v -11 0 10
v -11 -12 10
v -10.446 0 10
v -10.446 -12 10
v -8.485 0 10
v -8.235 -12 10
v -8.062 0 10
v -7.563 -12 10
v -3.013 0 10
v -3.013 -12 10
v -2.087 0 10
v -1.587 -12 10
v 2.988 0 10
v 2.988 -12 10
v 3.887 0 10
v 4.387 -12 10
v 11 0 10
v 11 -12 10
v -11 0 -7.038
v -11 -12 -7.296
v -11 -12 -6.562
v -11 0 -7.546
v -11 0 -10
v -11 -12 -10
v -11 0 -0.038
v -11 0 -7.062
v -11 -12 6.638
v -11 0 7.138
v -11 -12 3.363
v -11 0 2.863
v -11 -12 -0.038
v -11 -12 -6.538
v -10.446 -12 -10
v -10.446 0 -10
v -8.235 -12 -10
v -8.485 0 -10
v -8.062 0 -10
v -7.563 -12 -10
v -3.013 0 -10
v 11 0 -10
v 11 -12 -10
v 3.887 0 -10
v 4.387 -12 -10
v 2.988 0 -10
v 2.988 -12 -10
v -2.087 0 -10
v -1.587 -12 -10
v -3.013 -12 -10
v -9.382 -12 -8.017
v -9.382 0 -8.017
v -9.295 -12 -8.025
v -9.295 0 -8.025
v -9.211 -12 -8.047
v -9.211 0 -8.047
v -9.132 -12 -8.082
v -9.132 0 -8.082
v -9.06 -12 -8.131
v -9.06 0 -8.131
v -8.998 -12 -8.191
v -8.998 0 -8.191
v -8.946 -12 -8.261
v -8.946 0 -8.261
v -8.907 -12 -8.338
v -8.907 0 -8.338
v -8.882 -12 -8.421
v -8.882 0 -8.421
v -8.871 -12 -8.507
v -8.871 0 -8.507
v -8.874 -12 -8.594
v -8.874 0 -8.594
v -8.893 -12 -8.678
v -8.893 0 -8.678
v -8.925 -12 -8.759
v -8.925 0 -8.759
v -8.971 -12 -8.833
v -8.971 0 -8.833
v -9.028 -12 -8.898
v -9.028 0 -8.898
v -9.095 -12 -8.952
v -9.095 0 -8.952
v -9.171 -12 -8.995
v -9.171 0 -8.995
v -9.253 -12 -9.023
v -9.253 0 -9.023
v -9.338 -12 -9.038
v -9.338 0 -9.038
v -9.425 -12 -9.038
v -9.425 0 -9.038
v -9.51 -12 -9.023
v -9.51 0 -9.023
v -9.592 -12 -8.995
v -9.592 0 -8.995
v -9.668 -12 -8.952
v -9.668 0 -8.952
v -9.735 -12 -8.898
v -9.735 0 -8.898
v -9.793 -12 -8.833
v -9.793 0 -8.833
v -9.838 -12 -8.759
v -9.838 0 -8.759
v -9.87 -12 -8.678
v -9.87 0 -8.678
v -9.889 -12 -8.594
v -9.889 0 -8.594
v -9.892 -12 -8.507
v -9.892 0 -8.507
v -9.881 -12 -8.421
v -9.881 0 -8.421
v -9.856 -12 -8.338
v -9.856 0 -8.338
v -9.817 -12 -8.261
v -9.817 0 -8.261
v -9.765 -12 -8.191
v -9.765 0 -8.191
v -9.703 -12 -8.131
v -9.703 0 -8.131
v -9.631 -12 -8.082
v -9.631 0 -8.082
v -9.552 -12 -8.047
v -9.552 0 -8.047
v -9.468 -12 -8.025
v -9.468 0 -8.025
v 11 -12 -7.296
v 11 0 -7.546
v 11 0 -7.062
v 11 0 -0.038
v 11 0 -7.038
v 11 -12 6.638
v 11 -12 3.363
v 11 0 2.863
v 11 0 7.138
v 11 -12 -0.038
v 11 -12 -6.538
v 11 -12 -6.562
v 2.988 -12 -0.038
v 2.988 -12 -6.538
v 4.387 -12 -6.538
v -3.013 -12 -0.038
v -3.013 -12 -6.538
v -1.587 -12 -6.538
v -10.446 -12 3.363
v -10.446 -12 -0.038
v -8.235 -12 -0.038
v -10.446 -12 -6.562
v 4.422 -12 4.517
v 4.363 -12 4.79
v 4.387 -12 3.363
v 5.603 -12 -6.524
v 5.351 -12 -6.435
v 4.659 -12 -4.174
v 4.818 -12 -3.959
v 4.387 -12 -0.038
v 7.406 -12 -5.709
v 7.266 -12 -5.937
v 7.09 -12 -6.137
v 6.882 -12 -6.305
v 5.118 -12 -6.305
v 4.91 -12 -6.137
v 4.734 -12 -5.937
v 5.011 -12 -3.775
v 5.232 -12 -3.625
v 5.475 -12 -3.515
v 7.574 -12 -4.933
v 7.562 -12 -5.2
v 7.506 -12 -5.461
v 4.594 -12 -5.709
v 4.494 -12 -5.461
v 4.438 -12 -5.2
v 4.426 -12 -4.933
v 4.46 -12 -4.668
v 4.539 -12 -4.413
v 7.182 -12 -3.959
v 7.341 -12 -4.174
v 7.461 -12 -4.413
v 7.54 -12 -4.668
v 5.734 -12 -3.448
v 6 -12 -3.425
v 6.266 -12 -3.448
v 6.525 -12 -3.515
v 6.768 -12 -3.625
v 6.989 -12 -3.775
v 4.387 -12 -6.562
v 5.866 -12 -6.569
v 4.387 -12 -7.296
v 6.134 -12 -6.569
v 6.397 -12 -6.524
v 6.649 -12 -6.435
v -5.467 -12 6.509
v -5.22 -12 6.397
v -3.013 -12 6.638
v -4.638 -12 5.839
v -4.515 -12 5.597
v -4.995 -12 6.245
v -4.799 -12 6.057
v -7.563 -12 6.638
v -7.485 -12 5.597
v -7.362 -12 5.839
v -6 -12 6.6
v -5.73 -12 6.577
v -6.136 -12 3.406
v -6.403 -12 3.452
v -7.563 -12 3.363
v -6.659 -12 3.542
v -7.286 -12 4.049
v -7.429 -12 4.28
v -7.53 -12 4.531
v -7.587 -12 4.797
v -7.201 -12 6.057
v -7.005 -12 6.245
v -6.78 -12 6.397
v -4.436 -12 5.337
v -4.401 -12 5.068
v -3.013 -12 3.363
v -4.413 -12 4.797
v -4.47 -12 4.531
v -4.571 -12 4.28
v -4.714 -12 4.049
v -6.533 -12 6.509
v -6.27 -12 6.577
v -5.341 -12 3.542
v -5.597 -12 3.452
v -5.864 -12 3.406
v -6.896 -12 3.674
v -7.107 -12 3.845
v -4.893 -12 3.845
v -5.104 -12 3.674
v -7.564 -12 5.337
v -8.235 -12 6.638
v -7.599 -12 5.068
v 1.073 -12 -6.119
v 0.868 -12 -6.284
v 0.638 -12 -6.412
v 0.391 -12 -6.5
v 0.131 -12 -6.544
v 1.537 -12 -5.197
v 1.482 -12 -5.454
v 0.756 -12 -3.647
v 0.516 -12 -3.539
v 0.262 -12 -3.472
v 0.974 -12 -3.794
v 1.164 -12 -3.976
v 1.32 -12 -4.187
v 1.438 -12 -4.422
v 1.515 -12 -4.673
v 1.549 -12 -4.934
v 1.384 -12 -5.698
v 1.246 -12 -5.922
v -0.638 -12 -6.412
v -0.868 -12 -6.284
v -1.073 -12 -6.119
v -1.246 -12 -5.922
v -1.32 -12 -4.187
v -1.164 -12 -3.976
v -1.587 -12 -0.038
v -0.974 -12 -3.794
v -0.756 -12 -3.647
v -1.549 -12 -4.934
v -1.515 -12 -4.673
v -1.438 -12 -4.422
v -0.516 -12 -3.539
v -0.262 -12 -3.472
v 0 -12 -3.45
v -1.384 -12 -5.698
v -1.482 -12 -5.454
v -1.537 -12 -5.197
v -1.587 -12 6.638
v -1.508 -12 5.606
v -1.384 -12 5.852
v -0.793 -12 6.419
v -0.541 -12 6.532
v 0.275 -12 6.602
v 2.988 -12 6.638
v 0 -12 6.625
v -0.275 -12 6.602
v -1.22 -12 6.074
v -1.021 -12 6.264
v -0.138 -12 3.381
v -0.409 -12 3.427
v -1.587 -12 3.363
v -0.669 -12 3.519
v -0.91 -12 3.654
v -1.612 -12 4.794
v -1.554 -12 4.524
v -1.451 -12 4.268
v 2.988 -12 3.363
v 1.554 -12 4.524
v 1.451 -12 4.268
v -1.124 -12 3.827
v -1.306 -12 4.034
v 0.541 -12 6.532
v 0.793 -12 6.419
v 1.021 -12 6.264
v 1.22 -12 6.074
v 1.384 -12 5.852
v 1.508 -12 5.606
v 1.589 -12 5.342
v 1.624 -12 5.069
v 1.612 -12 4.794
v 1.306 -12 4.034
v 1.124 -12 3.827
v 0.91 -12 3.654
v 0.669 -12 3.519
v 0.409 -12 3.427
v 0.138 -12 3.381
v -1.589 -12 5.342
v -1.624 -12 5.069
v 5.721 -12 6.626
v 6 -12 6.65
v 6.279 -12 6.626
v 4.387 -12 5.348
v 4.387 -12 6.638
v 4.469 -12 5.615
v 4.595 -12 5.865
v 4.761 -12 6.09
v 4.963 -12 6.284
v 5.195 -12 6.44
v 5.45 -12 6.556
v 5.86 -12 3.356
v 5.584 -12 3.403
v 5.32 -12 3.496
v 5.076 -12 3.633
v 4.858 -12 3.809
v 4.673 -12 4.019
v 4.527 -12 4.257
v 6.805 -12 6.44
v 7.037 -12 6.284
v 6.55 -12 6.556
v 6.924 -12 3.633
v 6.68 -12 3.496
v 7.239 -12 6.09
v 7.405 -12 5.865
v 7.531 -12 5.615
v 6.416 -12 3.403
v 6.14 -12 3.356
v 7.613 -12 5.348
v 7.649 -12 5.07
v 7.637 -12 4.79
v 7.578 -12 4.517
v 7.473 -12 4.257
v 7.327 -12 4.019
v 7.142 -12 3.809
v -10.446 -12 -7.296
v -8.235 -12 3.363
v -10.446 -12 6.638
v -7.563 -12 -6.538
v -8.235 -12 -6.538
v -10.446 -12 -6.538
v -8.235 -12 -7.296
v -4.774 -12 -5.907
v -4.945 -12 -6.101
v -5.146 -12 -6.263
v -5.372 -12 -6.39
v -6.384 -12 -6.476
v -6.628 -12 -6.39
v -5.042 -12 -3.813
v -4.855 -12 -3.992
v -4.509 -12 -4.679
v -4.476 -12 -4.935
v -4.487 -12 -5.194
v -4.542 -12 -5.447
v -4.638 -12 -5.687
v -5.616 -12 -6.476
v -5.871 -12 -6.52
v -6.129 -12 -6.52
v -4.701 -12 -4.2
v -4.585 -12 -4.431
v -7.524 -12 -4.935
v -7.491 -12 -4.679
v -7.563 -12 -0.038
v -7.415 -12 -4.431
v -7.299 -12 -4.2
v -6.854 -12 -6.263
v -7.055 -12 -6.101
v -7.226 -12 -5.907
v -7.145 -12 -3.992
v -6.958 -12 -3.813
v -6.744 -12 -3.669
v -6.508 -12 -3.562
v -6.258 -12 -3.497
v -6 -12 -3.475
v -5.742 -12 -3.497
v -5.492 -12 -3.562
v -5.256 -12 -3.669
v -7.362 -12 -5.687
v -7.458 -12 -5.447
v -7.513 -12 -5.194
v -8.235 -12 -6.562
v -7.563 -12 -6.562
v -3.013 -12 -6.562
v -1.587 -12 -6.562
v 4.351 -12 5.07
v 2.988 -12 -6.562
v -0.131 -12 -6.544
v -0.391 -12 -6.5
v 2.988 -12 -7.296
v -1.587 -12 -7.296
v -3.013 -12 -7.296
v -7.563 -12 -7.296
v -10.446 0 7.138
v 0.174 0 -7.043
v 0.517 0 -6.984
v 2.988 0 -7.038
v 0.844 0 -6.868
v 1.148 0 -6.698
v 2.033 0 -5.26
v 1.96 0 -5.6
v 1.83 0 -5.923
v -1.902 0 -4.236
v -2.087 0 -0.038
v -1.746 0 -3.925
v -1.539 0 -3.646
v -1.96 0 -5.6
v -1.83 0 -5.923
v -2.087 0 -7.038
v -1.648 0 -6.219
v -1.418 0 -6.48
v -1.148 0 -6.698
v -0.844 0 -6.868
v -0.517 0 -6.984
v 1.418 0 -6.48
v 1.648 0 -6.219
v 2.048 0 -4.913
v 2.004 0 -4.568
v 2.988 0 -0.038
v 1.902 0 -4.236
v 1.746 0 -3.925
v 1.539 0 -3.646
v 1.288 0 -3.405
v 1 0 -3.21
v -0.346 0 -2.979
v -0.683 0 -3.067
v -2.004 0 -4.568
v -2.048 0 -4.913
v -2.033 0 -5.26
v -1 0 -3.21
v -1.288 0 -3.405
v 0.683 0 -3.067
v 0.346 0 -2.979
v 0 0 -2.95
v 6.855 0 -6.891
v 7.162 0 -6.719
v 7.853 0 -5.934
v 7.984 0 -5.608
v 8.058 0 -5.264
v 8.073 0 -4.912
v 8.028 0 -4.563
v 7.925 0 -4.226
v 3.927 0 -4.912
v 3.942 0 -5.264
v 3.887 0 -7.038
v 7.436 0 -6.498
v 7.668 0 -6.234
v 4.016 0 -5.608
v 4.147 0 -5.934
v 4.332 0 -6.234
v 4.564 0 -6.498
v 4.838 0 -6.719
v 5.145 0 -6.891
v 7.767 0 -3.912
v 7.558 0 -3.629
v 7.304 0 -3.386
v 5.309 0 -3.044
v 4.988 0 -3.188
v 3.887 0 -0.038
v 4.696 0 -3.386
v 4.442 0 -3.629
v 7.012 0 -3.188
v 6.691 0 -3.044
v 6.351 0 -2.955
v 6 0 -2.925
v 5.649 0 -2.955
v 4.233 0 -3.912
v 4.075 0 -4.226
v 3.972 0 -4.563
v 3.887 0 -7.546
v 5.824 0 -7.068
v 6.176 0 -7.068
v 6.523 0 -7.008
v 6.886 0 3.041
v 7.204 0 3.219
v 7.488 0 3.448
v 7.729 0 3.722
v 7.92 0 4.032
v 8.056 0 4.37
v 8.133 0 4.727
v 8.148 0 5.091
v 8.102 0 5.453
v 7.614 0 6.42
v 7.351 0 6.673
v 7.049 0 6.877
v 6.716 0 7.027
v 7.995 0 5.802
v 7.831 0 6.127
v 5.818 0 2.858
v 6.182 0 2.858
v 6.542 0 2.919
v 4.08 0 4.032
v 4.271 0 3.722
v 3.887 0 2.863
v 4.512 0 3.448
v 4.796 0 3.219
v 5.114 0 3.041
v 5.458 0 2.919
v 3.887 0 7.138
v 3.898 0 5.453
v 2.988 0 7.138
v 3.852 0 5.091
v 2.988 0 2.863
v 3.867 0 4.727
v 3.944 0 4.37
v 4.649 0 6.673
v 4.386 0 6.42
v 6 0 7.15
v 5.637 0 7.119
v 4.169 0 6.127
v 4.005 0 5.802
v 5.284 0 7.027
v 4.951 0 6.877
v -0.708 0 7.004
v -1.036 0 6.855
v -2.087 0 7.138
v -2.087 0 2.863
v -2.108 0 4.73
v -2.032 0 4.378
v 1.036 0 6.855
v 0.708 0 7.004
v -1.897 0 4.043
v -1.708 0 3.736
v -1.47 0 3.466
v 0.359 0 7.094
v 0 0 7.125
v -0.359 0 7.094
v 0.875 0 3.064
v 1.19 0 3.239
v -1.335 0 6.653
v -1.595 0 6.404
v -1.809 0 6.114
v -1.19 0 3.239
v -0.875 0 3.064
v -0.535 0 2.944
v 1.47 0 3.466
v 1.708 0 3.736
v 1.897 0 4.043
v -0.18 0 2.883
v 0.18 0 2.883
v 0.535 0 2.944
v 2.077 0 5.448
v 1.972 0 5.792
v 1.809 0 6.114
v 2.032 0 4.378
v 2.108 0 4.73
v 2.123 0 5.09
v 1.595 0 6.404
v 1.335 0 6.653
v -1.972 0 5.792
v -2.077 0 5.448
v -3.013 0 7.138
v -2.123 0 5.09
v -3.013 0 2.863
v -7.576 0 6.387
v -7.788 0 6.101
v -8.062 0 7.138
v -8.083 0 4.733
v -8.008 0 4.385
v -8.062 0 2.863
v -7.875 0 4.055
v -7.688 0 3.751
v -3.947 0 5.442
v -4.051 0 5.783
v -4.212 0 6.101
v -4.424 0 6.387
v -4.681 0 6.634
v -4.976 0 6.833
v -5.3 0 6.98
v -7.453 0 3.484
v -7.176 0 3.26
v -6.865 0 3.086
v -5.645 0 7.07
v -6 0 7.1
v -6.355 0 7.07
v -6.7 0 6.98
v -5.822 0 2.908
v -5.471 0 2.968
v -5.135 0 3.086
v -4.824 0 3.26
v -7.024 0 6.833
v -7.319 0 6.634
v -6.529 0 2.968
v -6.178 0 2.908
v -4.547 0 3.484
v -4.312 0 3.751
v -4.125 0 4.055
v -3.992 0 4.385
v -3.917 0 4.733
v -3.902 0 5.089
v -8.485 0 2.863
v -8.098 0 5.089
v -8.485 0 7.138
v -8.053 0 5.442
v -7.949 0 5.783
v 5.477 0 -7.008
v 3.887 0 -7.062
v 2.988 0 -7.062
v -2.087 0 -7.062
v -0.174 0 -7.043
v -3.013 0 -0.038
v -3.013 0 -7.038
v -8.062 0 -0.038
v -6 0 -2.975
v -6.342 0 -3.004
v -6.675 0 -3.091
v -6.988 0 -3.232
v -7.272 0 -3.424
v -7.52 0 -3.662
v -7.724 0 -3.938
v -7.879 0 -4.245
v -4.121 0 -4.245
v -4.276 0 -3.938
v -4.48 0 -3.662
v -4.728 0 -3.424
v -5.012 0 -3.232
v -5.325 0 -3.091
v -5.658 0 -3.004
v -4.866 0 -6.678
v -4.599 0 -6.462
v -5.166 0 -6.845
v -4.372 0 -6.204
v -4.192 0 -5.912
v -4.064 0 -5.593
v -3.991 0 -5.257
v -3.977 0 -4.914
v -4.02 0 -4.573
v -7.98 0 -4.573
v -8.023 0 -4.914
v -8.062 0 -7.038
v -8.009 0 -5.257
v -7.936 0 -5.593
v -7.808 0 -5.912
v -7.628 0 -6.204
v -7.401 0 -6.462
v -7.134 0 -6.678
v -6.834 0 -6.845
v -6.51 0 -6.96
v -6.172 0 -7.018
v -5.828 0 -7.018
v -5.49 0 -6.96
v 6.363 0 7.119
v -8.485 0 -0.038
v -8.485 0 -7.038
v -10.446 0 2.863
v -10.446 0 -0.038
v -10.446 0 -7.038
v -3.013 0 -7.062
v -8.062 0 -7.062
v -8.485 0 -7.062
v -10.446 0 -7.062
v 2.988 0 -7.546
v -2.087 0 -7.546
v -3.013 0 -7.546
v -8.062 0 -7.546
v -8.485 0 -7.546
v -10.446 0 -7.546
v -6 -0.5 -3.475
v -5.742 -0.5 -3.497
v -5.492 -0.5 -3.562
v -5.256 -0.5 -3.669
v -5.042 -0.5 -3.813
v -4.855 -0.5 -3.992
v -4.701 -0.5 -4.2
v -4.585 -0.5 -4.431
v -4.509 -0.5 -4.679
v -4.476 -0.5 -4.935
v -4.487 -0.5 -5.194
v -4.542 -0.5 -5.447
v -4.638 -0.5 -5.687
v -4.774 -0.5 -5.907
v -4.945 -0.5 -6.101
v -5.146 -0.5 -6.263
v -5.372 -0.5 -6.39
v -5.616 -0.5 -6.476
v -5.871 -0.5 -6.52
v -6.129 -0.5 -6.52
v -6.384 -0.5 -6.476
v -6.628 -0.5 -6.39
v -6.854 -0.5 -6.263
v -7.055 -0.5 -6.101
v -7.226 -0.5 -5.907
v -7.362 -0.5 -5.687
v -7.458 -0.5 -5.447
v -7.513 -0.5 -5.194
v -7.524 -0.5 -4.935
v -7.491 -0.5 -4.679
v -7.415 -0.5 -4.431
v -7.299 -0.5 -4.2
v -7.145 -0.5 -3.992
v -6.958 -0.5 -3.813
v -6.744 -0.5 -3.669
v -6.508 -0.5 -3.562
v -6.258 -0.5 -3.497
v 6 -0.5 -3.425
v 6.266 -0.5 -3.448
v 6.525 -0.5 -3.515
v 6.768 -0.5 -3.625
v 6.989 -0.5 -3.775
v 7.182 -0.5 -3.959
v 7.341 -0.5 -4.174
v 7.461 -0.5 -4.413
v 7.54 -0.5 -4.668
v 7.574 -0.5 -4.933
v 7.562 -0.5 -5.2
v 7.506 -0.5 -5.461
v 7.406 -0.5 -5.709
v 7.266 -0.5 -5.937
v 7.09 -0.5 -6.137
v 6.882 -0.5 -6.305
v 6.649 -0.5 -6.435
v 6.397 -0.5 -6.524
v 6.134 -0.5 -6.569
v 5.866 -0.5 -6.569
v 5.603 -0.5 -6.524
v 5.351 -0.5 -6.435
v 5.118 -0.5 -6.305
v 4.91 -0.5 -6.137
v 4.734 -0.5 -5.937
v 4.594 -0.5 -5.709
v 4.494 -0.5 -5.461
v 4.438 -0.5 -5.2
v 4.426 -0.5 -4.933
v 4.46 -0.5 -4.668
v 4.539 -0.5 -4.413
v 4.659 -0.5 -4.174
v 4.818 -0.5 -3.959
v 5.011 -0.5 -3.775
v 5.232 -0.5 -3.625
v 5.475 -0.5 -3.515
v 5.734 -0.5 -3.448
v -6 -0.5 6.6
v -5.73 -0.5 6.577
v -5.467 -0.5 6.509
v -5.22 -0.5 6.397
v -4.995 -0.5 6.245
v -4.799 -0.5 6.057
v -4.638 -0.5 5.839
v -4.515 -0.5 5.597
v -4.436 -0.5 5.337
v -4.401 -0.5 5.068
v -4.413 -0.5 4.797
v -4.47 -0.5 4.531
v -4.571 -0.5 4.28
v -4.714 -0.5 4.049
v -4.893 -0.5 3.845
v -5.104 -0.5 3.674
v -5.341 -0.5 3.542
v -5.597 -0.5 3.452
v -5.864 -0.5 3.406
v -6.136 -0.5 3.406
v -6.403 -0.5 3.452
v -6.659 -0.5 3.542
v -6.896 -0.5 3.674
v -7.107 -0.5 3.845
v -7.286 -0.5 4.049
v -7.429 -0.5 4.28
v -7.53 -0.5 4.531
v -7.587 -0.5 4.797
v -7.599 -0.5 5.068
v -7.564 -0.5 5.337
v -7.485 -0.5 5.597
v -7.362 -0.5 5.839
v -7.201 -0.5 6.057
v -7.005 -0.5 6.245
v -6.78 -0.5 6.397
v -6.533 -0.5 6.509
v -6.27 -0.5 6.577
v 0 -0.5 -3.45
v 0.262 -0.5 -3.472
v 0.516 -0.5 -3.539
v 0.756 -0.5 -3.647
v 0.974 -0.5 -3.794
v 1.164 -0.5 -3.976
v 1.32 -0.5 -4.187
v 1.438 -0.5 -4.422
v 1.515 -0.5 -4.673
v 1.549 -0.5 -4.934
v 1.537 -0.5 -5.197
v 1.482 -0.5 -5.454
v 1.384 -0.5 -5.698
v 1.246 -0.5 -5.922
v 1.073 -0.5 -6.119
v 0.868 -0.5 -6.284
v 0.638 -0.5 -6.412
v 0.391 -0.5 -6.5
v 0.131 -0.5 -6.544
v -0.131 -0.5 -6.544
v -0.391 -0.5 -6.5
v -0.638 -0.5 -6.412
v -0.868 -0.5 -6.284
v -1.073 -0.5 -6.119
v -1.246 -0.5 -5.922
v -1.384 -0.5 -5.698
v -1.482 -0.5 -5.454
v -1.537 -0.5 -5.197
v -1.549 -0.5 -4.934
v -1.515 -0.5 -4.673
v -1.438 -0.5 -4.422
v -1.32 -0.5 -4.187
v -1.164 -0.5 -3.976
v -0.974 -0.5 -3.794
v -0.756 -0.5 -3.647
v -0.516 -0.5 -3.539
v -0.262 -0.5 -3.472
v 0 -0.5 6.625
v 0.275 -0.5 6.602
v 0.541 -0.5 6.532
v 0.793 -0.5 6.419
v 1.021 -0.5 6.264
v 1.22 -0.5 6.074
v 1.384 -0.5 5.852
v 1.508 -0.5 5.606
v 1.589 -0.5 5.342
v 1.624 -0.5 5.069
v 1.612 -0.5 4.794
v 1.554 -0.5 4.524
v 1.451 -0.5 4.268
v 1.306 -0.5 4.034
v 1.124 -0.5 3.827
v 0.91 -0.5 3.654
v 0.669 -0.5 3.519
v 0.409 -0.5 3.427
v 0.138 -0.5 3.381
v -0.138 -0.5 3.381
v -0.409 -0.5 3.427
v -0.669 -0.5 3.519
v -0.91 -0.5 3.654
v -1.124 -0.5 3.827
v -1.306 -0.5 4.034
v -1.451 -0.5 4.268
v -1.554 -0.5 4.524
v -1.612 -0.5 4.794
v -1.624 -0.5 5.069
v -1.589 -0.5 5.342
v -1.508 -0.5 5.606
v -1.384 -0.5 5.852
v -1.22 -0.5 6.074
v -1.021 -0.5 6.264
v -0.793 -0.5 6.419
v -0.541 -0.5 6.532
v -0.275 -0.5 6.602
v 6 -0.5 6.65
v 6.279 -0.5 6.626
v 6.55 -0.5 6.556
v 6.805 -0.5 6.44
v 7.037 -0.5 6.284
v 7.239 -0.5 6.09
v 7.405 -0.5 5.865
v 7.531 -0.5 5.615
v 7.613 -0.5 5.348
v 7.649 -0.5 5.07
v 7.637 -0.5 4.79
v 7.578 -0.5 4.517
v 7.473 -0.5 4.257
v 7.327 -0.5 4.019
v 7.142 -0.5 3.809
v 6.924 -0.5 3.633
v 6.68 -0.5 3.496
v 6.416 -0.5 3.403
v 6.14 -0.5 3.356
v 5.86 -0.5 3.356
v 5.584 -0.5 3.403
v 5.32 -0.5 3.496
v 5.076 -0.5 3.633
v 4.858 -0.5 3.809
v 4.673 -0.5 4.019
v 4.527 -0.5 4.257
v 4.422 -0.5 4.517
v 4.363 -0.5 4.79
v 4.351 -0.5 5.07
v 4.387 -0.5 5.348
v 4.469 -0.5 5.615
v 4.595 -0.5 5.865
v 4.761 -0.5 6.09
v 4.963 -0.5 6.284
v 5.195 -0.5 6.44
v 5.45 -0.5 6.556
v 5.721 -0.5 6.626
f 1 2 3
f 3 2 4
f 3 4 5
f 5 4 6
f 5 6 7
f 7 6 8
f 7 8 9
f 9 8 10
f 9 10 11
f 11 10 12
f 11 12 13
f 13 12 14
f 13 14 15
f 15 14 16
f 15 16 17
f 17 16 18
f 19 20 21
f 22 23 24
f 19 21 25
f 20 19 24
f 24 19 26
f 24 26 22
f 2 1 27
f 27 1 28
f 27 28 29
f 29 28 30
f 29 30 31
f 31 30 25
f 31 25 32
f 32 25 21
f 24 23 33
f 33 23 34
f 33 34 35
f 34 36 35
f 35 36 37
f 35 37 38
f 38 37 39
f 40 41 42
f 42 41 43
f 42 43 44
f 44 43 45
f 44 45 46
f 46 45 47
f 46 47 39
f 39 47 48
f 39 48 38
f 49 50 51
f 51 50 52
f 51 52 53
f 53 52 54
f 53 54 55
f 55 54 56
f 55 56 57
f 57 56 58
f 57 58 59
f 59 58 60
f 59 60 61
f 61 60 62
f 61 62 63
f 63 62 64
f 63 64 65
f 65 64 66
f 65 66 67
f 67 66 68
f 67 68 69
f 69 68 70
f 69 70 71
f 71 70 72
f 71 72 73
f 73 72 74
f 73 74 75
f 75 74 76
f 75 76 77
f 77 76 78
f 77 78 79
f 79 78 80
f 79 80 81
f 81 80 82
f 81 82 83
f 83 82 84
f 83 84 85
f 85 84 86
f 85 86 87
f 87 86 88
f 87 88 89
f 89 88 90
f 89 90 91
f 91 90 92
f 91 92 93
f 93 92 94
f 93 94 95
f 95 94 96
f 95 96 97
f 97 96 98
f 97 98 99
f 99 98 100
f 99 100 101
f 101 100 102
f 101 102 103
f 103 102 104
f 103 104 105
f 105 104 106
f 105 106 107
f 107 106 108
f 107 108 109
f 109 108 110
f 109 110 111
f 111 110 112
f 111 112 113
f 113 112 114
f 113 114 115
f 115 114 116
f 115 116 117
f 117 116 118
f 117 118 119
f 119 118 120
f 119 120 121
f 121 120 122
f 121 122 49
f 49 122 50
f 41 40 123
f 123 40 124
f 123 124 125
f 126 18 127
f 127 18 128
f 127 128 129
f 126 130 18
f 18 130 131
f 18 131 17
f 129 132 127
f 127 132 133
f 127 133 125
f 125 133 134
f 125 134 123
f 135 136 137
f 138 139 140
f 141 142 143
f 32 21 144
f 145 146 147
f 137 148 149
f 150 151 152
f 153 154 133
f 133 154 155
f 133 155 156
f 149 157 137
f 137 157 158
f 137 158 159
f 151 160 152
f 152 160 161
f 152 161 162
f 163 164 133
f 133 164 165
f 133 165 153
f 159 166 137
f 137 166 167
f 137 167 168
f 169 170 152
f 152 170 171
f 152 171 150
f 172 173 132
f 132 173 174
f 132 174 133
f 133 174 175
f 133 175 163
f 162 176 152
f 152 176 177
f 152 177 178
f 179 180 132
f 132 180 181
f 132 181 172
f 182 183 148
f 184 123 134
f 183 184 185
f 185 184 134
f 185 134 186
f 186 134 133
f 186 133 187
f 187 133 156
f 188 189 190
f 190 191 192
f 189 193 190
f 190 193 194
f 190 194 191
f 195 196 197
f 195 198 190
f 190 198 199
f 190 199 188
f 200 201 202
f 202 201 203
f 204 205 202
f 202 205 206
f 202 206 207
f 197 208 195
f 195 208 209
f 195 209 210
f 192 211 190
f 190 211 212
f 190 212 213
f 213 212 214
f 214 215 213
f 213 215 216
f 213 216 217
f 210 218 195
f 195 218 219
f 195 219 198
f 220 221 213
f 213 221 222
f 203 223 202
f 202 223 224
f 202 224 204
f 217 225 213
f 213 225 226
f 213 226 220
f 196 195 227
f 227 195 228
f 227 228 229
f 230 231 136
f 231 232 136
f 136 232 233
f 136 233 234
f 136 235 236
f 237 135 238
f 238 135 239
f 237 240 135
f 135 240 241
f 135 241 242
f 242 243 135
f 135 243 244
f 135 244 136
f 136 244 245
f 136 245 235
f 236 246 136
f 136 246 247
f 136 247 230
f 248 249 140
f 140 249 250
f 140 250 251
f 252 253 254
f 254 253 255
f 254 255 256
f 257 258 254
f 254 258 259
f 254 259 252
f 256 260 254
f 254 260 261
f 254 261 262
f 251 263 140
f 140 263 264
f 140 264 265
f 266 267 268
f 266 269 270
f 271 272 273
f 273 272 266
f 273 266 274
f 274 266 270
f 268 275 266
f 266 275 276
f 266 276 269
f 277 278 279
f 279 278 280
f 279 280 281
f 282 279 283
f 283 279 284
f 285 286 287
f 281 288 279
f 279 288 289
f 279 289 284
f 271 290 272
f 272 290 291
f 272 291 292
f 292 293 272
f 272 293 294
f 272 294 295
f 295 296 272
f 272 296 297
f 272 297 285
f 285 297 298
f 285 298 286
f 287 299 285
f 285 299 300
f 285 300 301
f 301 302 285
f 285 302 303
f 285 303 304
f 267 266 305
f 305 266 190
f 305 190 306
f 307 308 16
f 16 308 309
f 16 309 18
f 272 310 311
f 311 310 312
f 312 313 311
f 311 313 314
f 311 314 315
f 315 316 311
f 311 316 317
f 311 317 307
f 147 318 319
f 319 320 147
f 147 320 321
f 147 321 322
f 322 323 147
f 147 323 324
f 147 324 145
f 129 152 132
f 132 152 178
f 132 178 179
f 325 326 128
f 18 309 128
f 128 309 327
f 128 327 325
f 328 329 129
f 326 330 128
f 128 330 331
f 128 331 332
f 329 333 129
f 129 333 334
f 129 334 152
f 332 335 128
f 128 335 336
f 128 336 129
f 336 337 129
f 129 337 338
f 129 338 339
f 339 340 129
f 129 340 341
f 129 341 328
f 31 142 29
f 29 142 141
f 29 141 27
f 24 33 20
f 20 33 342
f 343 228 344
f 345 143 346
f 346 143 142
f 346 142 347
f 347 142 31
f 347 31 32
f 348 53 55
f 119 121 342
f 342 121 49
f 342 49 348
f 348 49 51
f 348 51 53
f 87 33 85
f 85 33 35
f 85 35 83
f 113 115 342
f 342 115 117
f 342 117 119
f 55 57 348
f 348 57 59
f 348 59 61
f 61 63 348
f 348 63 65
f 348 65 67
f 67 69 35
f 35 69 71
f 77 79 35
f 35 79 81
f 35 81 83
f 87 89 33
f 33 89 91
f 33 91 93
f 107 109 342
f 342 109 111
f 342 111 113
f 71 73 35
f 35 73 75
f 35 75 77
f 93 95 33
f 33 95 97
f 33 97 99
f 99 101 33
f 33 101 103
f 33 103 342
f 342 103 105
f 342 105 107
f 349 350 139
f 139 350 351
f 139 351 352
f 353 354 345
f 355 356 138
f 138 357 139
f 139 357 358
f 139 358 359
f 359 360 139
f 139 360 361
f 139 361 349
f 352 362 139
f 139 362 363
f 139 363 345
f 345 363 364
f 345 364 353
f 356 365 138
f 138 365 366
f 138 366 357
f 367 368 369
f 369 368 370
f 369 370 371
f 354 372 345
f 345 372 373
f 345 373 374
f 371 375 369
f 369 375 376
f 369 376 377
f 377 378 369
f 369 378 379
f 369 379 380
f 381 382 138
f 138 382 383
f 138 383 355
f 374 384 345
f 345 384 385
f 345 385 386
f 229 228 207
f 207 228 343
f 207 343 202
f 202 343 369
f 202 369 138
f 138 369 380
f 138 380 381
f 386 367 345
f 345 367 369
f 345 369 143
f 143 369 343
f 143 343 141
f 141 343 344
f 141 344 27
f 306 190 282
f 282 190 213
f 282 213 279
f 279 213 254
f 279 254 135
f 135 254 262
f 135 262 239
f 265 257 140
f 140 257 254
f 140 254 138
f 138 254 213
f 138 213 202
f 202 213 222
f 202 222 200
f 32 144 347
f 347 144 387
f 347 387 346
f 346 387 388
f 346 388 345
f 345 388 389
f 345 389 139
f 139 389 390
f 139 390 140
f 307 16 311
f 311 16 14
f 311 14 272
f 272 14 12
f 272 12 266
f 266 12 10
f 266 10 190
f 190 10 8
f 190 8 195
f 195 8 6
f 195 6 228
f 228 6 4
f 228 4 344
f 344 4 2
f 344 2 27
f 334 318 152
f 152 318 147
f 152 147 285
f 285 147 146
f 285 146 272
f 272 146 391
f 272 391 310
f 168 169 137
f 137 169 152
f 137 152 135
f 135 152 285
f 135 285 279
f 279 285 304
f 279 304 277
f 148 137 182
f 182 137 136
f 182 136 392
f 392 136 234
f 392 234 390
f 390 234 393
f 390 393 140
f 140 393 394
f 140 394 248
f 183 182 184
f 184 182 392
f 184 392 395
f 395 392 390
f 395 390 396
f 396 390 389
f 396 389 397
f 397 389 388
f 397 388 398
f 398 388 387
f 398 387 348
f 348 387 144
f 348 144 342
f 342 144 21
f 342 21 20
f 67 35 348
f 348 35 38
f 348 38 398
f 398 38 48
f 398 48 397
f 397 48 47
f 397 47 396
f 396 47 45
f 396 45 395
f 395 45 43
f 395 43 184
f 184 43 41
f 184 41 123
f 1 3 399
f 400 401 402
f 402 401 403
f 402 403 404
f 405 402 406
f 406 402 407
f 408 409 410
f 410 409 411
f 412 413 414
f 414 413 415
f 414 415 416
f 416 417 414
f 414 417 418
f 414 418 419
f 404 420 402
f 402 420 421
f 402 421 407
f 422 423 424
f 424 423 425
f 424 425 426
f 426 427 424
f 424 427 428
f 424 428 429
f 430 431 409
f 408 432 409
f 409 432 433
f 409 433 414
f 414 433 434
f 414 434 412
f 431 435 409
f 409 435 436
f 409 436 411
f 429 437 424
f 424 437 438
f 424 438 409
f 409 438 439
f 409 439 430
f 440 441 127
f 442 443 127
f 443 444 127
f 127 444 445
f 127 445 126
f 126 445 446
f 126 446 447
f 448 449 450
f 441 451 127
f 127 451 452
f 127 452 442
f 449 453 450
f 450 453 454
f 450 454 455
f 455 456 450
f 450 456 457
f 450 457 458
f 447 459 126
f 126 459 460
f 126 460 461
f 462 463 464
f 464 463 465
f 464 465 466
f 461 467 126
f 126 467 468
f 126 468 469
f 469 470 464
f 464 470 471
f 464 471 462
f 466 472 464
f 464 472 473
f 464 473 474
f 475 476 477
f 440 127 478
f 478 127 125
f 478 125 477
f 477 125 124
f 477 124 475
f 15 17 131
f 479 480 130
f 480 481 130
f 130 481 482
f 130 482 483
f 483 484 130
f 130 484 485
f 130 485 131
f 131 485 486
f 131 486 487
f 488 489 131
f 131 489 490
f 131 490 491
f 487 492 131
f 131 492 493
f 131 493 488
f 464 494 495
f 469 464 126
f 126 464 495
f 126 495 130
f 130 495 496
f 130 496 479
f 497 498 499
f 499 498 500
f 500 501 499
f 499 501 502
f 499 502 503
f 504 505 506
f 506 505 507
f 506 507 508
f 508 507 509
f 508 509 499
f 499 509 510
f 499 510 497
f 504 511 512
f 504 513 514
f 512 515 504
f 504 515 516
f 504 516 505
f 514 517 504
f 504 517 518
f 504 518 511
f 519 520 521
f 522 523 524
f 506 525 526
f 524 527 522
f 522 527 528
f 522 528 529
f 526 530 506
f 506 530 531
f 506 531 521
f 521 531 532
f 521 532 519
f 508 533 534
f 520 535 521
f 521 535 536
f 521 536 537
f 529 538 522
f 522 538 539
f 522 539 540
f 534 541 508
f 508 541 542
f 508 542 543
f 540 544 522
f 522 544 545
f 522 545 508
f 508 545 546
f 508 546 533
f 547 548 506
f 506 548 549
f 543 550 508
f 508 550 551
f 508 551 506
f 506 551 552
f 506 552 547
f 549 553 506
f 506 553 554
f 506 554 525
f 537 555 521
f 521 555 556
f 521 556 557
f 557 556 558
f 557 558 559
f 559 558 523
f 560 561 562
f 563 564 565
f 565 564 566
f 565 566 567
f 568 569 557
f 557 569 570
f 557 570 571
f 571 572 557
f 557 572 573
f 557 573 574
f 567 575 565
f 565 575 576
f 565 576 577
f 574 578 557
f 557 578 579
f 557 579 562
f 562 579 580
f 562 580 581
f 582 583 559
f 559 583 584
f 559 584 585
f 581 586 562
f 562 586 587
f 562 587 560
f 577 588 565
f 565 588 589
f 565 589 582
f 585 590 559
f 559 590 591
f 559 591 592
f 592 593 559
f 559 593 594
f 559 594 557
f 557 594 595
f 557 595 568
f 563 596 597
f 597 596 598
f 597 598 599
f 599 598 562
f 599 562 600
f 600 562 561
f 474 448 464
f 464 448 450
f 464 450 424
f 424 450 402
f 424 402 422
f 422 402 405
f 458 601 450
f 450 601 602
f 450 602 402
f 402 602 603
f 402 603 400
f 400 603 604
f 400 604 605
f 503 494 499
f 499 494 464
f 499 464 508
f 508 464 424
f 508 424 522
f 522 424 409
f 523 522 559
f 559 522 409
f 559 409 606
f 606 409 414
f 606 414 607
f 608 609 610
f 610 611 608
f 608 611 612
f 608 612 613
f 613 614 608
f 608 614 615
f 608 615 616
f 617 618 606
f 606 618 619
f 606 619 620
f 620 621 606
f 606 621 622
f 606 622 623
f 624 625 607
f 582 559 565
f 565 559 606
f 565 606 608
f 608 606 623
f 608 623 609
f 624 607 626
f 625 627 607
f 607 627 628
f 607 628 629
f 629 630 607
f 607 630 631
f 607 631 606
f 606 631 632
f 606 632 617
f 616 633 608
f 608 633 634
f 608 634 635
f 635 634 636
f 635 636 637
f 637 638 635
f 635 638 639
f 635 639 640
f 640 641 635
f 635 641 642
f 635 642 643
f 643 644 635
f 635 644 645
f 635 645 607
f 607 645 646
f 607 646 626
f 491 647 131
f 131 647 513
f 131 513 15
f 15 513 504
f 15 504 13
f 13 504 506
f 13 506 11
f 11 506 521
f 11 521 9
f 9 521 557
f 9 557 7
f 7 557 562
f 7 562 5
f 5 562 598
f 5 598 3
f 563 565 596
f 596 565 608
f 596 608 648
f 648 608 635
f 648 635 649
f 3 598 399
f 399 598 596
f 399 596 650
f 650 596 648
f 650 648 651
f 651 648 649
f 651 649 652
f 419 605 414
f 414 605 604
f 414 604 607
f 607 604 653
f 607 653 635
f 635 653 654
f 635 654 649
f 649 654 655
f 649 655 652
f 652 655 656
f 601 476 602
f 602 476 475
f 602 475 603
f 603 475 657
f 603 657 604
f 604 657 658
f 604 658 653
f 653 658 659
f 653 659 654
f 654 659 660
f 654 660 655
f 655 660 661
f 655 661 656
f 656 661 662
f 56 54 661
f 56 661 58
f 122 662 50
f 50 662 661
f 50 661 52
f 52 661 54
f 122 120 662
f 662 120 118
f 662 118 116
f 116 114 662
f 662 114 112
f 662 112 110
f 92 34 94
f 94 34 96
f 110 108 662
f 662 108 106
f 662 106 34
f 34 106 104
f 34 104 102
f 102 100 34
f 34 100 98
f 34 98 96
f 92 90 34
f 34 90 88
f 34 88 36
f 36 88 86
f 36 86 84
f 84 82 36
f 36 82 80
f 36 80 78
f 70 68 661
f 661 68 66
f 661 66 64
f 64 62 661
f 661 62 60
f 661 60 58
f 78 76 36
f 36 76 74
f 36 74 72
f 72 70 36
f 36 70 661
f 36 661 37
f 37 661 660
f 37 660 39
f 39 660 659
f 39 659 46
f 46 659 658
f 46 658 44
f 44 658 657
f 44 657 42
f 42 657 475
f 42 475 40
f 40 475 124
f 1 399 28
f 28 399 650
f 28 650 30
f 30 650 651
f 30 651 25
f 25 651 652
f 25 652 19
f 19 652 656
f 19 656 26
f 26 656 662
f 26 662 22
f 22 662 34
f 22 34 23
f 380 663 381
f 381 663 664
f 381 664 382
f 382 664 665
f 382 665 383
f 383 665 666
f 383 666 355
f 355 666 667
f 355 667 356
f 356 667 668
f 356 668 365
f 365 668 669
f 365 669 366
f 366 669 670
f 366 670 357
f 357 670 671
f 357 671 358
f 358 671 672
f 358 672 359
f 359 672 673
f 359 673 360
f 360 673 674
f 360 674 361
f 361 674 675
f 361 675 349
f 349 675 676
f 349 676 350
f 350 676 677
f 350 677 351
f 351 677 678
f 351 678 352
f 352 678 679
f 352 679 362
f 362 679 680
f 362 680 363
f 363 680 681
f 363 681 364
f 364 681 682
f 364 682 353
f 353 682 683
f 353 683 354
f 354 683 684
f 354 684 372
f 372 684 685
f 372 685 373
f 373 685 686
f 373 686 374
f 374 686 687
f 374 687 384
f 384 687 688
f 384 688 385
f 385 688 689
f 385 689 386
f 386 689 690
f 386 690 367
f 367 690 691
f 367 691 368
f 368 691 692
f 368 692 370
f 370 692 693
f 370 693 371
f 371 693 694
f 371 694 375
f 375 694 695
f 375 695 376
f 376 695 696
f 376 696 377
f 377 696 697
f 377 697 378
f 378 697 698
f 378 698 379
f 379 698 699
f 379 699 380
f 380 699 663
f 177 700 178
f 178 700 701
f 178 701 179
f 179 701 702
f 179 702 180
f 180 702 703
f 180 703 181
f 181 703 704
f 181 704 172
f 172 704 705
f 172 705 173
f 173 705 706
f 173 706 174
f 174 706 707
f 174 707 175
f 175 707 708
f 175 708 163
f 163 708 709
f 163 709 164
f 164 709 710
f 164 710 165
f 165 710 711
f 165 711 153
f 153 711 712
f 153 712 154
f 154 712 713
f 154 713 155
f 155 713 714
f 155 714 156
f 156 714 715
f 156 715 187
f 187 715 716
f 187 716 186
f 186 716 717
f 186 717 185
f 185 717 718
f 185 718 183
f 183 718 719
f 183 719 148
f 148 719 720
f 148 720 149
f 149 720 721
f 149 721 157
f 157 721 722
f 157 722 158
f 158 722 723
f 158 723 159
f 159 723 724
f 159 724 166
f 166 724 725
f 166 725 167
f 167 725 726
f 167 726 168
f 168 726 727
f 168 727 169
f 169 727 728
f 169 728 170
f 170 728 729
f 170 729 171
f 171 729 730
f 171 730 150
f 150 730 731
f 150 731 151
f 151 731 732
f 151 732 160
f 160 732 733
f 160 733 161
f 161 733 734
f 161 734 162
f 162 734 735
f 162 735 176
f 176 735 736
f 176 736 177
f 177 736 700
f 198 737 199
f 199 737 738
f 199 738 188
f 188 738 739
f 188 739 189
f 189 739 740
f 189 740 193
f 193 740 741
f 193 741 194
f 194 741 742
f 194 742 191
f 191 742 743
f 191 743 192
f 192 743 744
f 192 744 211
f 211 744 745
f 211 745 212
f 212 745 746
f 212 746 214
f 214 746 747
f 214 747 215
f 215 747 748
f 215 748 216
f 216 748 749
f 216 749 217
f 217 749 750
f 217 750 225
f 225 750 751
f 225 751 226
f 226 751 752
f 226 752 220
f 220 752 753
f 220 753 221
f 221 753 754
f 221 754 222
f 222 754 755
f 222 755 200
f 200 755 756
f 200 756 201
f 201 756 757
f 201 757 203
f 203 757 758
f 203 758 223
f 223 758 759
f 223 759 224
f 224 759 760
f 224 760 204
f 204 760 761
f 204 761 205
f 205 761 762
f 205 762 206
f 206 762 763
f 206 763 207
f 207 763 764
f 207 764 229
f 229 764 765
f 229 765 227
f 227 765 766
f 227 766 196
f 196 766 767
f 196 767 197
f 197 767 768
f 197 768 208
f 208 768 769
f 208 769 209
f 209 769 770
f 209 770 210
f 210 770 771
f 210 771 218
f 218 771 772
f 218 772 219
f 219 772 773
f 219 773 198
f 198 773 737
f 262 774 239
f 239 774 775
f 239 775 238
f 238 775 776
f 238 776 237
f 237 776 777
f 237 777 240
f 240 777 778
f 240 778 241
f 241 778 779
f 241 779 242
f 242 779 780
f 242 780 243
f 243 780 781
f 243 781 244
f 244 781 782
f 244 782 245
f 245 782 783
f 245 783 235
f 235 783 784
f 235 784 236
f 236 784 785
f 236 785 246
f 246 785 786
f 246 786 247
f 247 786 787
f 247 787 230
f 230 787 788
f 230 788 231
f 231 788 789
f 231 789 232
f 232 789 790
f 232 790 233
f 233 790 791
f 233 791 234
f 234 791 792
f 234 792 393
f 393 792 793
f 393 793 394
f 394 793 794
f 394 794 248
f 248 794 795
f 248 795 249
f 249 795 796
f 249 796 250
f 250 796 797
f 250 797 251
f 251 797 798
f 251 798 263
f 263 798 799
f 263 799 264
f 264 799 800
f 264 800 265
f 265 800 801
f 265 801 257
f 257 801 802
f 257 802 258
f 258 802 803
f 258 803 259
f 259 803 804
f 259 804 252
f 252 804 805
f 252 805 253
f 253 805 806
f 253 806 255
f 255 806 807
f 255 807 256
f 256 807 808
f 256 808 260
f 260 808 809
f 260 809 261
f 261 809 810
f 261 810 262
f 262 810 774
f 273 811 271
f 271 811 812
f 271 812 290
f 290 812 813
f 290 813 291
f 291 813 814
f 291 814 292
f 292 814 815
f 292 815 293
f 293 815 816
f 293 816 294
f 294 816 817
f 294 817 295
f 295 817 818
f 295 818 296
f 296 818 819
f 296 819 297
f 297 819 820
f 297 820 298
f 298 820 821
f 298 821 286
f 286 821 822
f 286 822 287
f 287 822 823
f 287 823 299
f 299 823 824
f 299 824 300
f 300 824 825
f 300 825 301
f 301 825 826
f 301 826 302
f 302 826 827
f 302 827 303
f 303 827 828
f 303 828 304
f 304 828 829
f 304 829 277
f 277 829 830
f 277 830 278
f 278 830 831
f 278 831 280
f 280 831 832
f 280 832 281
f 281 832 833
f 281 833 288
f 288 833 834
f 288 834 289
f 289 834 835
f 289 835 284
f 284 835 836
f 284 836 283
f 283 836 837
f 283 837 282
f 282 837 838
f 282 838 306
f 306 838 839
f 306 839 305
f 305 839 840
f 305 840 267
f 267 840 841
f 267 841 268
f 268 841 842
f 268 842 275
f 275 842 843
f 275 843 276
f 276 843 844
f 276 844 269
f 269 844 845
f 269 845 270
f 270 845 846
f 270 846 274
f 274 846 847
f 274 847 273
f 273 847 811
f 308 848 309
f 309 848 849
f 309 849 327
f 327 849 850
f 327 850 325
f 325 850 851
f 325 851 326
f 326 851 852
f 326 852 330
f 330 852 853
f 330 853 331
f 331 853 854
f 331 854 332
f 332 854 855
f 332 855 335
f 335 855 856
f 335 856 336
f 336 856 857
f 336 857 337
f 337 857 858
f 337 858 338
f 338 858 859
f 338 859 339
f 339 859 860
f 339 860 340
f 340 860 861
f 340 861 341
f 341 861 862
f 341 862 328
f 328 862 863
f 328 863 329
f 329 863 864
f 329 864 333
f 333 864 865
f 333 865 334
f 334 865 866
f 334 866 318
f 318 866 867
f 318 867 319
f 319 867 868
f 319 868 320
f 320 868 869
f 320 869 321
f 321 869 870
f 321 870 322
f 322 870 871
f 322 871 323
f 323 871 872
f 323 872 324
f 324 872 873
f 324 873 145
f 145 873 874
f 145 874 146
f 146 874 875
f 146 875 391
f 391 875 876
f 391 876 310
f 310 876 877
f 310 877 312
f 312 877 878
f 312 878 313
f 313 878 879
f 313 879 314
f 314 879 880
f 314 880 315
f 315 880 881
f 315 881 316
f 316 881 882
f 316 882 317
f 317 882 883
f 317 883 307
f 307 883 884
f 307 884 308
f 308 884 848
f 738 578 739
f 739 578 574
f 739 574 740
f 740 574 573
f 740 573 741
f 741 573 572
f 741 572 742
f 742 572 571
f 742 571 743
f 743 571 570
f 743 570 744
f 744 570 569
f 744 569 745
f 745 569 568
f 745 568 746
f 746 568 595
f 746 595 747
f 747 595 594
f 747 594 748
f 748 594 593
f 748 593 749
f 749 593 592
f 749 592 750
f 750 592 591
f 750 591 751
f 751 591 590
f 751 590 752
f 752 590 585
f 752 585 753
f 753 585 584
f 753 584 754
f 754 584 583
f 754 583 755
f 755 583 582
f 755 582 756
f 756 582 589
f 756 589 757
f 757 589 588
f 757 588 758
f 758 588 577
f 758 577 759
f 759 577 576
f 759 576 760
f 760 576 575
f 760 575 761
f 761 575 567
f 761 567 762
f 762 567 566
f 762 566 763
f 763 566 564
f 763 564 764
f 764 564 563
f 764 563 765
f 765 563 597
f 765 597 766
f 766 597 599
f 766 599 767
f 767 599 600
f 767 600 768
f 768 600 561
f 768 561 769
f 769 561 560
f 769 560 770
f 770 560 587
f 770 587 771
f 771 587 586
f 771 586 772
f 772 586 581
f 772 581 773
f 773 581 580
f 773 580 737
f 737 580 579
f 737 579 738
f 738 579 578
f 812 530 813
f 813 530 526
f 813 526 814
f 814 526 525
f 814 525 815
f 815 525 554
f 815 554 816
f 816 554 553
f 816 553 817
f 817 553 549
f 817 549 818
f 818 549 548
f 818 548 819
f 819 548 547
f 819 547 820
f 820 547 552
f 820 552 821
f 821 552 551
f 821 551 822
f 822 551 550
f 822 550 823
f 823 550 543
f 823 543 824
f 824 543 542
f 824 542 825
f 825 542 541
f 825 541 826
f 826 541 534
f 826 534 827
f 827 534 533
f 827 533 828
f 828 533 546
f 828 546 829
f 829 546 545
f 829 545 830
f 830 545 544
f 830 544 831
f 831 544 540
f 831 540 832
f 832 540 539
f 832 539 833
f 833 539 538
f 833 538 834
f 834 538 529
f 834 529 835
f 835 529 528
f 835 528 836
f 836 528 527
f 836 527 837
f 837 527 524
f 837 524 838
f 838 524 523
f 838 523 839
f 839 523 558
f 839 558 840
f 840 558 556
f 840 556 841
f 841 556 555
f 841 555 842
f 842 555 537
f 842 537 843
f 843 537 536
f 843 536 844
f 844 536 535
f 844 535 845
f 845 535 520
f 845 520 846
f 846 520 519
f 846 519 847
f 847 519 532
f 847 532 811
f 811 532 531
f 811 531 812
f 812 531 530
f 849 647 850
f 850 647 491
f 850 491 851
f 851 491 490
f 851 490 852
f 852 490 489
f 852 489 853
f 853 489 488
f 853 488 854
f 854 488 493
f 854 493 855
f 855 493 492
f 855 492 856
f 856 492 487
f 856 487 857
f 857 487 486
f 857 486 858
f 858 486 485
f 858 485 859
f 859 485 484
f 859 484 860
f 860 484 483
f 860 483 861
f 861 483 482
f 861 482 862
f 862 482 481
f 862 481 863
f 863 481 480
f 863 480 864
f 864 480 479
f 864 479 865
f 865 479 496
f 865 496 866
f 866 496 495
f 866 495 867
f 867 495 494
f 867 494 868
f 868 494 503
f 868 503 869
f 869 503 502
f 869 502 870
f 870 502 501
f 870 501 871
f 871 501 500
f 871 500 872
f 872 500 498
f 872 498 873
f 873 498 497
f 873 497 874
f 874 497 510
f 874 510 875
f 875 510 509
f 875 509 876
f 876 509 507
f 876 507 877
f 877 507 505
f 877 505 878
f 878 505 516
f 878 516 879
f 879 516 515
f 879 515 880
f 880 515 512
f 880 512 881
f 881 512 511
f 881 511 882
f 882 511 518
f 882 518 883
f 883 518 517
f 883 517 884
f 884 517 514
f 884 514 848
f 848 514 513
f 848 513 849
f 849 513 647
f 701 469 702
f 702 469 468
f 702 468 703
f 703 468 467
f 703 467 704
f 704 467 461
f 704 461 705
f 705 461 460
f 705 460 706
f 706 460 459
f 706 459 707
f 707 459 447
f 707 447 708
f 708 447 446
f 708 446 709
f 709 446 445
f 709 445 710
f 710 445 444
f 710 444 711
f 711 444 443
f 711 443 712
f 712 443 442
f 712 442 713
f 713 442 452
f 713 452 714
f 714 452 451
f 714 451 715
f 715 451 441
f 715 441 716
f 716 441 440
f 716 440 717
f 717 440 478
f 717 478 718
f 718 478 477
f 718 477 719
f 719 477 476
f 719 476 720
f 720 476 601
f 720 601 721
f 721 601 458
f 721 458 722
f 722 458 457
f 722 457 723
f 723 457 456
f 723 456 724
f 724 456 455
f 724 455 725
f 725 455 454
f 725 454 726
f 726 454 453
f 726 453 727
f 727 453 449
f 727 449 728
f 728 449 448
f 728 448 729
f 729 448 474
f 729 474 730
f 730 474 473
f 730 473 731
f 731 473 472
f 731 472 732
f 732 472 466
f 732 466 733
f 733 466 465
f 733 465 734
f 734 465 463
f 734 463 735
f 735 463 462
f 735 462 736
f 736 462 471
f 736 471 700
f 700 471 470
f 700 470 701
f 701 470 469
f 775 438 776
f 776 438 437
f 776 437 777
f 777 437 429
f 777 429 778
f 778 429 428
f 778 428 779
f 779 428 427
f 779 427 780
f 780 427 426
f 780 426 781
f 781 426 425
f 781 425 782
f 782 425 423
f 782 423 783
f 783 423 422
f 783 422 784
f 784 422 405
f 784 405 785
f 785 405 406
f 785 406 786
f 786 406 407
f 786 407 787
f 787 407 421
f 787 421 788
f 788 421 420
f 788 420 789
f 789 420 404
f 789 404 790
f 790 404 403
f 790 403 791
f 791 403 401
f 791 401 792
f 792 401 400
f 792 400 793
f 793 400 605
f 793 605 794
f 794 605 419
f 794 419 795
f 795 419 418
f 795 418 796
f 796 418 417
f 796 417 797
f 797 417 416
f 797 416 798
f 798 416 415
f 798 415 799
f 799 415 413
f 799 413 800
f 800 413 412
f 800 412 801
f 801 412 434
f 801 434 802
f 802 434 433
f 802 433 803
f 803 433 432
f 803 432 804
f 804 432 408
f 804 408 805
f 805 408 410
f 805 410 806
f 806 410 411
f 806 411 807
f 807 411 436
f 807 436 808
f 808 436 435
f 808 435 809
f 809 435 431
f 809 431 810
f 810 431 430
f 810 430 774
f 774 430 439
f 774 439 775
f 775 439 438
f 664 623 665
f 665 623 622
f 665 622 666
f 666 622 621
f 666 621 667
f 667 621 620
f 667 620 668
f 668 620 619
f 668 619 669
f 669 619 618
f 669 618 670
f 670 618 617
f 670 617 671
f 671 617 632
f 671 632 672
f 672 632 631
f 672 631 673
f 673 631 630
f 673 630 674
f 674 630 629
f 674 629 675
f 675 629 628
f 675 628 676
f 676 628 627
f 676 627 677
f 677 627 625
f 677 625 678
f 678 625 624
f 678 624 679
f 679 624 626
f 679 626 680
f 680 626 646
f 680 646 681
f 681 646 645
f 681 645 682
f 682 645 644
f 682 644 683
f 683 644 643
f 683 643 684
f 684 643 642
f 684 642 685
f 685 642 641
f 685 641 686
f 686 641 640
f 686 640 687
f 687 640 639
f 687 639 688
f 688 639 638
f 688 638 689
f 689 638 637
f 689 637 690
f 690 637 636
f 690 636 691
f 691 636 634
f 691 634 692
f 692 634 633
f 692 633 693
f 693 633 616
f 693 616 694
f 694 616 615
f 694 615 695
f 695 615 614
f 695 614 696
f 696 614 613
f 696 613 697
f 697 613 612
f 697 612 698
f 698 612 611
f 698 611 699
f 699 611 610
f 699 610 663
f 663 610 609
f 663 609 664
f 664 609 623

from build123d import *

# Parameters (mm, degrees)
SKETCH1_W           = 22
SKETCH1_H           = 20
SKETCH1_R           = 0.511248757
BOSS_EXTRUDE1_DEPTH = 12
SKETCH1_3_R         = 1.525
SKETCH1_3_R_2       = 1.55
SKETCH1_3_R_3       = 1.575
SKETCH1_3_R_4       = 1.6
SKETCH1_3_R_5       = 1.625
SKETCH1_3_R_6       = 1.65
CUT_EXTRUDE1_DEPTH  = 20.104973175
CHAMFER1_SIZE       = 0.5


with BuildPart() as part:
    # Sketch1 → Boss-Extrude1 (new body)
    with BuildSketch(Plane(origin=(0, 0, 0), x_dir=(1, 0, 0), z_dir=(0, 1, 0))):
        Rectangle(SKETCH1_W, SKETCH1_H)
        with Locations((-9.381564608, 8.528695098)):
            Circle(SKETCH1_R, mode=Mode.SUBTRACT)
    extrude(amount=-BOSS_EXTRUDE1_DEPTH)

    # Sketch1<3> → Cut-Extrude1 (cut, through all)
    with BuildSketch(Plane(origin=(0, 0, 0), x_dir=(1, 0, 0), z_dir=(0, 1, 0))):
        with Locations((-6, 5)):
            Circle(SKETCH1_3_R)
        with Locations((0, 5)):
            Circle(SKETCH1_3_R_2)
        with Locations((6, 5)):
            Circle(SKETCH1_3_R_3)
        with Locations((-6, -5)):
            Circle(SKETCH1_3_R_4)
        with Locations((0, -5)):
            Circle(SKETCH1_3_R_5)
        with Locations((6, -5)):
            Circle(SKETCH1_3_R_6)
    extrude(amount=-CUT_EXTRUDE1_DEPTH, mode=Mode.SUBTRACT)

    # Chamfer1
    chamfer1_edges = [part.edges().sort_by_distance(p)[0] for p in [
        (-7.6, 0, 5),
        (-1.625, 0, 5),
        (4.35, 0, 5),
        (4.425, 0, -5),
        (-1.55, 0, -5),
        (-7.525, 0, -5),
    ]]
    chamfer(chamfer1_edges, length=CHAMFER1_SIZE)


solid = part.part
